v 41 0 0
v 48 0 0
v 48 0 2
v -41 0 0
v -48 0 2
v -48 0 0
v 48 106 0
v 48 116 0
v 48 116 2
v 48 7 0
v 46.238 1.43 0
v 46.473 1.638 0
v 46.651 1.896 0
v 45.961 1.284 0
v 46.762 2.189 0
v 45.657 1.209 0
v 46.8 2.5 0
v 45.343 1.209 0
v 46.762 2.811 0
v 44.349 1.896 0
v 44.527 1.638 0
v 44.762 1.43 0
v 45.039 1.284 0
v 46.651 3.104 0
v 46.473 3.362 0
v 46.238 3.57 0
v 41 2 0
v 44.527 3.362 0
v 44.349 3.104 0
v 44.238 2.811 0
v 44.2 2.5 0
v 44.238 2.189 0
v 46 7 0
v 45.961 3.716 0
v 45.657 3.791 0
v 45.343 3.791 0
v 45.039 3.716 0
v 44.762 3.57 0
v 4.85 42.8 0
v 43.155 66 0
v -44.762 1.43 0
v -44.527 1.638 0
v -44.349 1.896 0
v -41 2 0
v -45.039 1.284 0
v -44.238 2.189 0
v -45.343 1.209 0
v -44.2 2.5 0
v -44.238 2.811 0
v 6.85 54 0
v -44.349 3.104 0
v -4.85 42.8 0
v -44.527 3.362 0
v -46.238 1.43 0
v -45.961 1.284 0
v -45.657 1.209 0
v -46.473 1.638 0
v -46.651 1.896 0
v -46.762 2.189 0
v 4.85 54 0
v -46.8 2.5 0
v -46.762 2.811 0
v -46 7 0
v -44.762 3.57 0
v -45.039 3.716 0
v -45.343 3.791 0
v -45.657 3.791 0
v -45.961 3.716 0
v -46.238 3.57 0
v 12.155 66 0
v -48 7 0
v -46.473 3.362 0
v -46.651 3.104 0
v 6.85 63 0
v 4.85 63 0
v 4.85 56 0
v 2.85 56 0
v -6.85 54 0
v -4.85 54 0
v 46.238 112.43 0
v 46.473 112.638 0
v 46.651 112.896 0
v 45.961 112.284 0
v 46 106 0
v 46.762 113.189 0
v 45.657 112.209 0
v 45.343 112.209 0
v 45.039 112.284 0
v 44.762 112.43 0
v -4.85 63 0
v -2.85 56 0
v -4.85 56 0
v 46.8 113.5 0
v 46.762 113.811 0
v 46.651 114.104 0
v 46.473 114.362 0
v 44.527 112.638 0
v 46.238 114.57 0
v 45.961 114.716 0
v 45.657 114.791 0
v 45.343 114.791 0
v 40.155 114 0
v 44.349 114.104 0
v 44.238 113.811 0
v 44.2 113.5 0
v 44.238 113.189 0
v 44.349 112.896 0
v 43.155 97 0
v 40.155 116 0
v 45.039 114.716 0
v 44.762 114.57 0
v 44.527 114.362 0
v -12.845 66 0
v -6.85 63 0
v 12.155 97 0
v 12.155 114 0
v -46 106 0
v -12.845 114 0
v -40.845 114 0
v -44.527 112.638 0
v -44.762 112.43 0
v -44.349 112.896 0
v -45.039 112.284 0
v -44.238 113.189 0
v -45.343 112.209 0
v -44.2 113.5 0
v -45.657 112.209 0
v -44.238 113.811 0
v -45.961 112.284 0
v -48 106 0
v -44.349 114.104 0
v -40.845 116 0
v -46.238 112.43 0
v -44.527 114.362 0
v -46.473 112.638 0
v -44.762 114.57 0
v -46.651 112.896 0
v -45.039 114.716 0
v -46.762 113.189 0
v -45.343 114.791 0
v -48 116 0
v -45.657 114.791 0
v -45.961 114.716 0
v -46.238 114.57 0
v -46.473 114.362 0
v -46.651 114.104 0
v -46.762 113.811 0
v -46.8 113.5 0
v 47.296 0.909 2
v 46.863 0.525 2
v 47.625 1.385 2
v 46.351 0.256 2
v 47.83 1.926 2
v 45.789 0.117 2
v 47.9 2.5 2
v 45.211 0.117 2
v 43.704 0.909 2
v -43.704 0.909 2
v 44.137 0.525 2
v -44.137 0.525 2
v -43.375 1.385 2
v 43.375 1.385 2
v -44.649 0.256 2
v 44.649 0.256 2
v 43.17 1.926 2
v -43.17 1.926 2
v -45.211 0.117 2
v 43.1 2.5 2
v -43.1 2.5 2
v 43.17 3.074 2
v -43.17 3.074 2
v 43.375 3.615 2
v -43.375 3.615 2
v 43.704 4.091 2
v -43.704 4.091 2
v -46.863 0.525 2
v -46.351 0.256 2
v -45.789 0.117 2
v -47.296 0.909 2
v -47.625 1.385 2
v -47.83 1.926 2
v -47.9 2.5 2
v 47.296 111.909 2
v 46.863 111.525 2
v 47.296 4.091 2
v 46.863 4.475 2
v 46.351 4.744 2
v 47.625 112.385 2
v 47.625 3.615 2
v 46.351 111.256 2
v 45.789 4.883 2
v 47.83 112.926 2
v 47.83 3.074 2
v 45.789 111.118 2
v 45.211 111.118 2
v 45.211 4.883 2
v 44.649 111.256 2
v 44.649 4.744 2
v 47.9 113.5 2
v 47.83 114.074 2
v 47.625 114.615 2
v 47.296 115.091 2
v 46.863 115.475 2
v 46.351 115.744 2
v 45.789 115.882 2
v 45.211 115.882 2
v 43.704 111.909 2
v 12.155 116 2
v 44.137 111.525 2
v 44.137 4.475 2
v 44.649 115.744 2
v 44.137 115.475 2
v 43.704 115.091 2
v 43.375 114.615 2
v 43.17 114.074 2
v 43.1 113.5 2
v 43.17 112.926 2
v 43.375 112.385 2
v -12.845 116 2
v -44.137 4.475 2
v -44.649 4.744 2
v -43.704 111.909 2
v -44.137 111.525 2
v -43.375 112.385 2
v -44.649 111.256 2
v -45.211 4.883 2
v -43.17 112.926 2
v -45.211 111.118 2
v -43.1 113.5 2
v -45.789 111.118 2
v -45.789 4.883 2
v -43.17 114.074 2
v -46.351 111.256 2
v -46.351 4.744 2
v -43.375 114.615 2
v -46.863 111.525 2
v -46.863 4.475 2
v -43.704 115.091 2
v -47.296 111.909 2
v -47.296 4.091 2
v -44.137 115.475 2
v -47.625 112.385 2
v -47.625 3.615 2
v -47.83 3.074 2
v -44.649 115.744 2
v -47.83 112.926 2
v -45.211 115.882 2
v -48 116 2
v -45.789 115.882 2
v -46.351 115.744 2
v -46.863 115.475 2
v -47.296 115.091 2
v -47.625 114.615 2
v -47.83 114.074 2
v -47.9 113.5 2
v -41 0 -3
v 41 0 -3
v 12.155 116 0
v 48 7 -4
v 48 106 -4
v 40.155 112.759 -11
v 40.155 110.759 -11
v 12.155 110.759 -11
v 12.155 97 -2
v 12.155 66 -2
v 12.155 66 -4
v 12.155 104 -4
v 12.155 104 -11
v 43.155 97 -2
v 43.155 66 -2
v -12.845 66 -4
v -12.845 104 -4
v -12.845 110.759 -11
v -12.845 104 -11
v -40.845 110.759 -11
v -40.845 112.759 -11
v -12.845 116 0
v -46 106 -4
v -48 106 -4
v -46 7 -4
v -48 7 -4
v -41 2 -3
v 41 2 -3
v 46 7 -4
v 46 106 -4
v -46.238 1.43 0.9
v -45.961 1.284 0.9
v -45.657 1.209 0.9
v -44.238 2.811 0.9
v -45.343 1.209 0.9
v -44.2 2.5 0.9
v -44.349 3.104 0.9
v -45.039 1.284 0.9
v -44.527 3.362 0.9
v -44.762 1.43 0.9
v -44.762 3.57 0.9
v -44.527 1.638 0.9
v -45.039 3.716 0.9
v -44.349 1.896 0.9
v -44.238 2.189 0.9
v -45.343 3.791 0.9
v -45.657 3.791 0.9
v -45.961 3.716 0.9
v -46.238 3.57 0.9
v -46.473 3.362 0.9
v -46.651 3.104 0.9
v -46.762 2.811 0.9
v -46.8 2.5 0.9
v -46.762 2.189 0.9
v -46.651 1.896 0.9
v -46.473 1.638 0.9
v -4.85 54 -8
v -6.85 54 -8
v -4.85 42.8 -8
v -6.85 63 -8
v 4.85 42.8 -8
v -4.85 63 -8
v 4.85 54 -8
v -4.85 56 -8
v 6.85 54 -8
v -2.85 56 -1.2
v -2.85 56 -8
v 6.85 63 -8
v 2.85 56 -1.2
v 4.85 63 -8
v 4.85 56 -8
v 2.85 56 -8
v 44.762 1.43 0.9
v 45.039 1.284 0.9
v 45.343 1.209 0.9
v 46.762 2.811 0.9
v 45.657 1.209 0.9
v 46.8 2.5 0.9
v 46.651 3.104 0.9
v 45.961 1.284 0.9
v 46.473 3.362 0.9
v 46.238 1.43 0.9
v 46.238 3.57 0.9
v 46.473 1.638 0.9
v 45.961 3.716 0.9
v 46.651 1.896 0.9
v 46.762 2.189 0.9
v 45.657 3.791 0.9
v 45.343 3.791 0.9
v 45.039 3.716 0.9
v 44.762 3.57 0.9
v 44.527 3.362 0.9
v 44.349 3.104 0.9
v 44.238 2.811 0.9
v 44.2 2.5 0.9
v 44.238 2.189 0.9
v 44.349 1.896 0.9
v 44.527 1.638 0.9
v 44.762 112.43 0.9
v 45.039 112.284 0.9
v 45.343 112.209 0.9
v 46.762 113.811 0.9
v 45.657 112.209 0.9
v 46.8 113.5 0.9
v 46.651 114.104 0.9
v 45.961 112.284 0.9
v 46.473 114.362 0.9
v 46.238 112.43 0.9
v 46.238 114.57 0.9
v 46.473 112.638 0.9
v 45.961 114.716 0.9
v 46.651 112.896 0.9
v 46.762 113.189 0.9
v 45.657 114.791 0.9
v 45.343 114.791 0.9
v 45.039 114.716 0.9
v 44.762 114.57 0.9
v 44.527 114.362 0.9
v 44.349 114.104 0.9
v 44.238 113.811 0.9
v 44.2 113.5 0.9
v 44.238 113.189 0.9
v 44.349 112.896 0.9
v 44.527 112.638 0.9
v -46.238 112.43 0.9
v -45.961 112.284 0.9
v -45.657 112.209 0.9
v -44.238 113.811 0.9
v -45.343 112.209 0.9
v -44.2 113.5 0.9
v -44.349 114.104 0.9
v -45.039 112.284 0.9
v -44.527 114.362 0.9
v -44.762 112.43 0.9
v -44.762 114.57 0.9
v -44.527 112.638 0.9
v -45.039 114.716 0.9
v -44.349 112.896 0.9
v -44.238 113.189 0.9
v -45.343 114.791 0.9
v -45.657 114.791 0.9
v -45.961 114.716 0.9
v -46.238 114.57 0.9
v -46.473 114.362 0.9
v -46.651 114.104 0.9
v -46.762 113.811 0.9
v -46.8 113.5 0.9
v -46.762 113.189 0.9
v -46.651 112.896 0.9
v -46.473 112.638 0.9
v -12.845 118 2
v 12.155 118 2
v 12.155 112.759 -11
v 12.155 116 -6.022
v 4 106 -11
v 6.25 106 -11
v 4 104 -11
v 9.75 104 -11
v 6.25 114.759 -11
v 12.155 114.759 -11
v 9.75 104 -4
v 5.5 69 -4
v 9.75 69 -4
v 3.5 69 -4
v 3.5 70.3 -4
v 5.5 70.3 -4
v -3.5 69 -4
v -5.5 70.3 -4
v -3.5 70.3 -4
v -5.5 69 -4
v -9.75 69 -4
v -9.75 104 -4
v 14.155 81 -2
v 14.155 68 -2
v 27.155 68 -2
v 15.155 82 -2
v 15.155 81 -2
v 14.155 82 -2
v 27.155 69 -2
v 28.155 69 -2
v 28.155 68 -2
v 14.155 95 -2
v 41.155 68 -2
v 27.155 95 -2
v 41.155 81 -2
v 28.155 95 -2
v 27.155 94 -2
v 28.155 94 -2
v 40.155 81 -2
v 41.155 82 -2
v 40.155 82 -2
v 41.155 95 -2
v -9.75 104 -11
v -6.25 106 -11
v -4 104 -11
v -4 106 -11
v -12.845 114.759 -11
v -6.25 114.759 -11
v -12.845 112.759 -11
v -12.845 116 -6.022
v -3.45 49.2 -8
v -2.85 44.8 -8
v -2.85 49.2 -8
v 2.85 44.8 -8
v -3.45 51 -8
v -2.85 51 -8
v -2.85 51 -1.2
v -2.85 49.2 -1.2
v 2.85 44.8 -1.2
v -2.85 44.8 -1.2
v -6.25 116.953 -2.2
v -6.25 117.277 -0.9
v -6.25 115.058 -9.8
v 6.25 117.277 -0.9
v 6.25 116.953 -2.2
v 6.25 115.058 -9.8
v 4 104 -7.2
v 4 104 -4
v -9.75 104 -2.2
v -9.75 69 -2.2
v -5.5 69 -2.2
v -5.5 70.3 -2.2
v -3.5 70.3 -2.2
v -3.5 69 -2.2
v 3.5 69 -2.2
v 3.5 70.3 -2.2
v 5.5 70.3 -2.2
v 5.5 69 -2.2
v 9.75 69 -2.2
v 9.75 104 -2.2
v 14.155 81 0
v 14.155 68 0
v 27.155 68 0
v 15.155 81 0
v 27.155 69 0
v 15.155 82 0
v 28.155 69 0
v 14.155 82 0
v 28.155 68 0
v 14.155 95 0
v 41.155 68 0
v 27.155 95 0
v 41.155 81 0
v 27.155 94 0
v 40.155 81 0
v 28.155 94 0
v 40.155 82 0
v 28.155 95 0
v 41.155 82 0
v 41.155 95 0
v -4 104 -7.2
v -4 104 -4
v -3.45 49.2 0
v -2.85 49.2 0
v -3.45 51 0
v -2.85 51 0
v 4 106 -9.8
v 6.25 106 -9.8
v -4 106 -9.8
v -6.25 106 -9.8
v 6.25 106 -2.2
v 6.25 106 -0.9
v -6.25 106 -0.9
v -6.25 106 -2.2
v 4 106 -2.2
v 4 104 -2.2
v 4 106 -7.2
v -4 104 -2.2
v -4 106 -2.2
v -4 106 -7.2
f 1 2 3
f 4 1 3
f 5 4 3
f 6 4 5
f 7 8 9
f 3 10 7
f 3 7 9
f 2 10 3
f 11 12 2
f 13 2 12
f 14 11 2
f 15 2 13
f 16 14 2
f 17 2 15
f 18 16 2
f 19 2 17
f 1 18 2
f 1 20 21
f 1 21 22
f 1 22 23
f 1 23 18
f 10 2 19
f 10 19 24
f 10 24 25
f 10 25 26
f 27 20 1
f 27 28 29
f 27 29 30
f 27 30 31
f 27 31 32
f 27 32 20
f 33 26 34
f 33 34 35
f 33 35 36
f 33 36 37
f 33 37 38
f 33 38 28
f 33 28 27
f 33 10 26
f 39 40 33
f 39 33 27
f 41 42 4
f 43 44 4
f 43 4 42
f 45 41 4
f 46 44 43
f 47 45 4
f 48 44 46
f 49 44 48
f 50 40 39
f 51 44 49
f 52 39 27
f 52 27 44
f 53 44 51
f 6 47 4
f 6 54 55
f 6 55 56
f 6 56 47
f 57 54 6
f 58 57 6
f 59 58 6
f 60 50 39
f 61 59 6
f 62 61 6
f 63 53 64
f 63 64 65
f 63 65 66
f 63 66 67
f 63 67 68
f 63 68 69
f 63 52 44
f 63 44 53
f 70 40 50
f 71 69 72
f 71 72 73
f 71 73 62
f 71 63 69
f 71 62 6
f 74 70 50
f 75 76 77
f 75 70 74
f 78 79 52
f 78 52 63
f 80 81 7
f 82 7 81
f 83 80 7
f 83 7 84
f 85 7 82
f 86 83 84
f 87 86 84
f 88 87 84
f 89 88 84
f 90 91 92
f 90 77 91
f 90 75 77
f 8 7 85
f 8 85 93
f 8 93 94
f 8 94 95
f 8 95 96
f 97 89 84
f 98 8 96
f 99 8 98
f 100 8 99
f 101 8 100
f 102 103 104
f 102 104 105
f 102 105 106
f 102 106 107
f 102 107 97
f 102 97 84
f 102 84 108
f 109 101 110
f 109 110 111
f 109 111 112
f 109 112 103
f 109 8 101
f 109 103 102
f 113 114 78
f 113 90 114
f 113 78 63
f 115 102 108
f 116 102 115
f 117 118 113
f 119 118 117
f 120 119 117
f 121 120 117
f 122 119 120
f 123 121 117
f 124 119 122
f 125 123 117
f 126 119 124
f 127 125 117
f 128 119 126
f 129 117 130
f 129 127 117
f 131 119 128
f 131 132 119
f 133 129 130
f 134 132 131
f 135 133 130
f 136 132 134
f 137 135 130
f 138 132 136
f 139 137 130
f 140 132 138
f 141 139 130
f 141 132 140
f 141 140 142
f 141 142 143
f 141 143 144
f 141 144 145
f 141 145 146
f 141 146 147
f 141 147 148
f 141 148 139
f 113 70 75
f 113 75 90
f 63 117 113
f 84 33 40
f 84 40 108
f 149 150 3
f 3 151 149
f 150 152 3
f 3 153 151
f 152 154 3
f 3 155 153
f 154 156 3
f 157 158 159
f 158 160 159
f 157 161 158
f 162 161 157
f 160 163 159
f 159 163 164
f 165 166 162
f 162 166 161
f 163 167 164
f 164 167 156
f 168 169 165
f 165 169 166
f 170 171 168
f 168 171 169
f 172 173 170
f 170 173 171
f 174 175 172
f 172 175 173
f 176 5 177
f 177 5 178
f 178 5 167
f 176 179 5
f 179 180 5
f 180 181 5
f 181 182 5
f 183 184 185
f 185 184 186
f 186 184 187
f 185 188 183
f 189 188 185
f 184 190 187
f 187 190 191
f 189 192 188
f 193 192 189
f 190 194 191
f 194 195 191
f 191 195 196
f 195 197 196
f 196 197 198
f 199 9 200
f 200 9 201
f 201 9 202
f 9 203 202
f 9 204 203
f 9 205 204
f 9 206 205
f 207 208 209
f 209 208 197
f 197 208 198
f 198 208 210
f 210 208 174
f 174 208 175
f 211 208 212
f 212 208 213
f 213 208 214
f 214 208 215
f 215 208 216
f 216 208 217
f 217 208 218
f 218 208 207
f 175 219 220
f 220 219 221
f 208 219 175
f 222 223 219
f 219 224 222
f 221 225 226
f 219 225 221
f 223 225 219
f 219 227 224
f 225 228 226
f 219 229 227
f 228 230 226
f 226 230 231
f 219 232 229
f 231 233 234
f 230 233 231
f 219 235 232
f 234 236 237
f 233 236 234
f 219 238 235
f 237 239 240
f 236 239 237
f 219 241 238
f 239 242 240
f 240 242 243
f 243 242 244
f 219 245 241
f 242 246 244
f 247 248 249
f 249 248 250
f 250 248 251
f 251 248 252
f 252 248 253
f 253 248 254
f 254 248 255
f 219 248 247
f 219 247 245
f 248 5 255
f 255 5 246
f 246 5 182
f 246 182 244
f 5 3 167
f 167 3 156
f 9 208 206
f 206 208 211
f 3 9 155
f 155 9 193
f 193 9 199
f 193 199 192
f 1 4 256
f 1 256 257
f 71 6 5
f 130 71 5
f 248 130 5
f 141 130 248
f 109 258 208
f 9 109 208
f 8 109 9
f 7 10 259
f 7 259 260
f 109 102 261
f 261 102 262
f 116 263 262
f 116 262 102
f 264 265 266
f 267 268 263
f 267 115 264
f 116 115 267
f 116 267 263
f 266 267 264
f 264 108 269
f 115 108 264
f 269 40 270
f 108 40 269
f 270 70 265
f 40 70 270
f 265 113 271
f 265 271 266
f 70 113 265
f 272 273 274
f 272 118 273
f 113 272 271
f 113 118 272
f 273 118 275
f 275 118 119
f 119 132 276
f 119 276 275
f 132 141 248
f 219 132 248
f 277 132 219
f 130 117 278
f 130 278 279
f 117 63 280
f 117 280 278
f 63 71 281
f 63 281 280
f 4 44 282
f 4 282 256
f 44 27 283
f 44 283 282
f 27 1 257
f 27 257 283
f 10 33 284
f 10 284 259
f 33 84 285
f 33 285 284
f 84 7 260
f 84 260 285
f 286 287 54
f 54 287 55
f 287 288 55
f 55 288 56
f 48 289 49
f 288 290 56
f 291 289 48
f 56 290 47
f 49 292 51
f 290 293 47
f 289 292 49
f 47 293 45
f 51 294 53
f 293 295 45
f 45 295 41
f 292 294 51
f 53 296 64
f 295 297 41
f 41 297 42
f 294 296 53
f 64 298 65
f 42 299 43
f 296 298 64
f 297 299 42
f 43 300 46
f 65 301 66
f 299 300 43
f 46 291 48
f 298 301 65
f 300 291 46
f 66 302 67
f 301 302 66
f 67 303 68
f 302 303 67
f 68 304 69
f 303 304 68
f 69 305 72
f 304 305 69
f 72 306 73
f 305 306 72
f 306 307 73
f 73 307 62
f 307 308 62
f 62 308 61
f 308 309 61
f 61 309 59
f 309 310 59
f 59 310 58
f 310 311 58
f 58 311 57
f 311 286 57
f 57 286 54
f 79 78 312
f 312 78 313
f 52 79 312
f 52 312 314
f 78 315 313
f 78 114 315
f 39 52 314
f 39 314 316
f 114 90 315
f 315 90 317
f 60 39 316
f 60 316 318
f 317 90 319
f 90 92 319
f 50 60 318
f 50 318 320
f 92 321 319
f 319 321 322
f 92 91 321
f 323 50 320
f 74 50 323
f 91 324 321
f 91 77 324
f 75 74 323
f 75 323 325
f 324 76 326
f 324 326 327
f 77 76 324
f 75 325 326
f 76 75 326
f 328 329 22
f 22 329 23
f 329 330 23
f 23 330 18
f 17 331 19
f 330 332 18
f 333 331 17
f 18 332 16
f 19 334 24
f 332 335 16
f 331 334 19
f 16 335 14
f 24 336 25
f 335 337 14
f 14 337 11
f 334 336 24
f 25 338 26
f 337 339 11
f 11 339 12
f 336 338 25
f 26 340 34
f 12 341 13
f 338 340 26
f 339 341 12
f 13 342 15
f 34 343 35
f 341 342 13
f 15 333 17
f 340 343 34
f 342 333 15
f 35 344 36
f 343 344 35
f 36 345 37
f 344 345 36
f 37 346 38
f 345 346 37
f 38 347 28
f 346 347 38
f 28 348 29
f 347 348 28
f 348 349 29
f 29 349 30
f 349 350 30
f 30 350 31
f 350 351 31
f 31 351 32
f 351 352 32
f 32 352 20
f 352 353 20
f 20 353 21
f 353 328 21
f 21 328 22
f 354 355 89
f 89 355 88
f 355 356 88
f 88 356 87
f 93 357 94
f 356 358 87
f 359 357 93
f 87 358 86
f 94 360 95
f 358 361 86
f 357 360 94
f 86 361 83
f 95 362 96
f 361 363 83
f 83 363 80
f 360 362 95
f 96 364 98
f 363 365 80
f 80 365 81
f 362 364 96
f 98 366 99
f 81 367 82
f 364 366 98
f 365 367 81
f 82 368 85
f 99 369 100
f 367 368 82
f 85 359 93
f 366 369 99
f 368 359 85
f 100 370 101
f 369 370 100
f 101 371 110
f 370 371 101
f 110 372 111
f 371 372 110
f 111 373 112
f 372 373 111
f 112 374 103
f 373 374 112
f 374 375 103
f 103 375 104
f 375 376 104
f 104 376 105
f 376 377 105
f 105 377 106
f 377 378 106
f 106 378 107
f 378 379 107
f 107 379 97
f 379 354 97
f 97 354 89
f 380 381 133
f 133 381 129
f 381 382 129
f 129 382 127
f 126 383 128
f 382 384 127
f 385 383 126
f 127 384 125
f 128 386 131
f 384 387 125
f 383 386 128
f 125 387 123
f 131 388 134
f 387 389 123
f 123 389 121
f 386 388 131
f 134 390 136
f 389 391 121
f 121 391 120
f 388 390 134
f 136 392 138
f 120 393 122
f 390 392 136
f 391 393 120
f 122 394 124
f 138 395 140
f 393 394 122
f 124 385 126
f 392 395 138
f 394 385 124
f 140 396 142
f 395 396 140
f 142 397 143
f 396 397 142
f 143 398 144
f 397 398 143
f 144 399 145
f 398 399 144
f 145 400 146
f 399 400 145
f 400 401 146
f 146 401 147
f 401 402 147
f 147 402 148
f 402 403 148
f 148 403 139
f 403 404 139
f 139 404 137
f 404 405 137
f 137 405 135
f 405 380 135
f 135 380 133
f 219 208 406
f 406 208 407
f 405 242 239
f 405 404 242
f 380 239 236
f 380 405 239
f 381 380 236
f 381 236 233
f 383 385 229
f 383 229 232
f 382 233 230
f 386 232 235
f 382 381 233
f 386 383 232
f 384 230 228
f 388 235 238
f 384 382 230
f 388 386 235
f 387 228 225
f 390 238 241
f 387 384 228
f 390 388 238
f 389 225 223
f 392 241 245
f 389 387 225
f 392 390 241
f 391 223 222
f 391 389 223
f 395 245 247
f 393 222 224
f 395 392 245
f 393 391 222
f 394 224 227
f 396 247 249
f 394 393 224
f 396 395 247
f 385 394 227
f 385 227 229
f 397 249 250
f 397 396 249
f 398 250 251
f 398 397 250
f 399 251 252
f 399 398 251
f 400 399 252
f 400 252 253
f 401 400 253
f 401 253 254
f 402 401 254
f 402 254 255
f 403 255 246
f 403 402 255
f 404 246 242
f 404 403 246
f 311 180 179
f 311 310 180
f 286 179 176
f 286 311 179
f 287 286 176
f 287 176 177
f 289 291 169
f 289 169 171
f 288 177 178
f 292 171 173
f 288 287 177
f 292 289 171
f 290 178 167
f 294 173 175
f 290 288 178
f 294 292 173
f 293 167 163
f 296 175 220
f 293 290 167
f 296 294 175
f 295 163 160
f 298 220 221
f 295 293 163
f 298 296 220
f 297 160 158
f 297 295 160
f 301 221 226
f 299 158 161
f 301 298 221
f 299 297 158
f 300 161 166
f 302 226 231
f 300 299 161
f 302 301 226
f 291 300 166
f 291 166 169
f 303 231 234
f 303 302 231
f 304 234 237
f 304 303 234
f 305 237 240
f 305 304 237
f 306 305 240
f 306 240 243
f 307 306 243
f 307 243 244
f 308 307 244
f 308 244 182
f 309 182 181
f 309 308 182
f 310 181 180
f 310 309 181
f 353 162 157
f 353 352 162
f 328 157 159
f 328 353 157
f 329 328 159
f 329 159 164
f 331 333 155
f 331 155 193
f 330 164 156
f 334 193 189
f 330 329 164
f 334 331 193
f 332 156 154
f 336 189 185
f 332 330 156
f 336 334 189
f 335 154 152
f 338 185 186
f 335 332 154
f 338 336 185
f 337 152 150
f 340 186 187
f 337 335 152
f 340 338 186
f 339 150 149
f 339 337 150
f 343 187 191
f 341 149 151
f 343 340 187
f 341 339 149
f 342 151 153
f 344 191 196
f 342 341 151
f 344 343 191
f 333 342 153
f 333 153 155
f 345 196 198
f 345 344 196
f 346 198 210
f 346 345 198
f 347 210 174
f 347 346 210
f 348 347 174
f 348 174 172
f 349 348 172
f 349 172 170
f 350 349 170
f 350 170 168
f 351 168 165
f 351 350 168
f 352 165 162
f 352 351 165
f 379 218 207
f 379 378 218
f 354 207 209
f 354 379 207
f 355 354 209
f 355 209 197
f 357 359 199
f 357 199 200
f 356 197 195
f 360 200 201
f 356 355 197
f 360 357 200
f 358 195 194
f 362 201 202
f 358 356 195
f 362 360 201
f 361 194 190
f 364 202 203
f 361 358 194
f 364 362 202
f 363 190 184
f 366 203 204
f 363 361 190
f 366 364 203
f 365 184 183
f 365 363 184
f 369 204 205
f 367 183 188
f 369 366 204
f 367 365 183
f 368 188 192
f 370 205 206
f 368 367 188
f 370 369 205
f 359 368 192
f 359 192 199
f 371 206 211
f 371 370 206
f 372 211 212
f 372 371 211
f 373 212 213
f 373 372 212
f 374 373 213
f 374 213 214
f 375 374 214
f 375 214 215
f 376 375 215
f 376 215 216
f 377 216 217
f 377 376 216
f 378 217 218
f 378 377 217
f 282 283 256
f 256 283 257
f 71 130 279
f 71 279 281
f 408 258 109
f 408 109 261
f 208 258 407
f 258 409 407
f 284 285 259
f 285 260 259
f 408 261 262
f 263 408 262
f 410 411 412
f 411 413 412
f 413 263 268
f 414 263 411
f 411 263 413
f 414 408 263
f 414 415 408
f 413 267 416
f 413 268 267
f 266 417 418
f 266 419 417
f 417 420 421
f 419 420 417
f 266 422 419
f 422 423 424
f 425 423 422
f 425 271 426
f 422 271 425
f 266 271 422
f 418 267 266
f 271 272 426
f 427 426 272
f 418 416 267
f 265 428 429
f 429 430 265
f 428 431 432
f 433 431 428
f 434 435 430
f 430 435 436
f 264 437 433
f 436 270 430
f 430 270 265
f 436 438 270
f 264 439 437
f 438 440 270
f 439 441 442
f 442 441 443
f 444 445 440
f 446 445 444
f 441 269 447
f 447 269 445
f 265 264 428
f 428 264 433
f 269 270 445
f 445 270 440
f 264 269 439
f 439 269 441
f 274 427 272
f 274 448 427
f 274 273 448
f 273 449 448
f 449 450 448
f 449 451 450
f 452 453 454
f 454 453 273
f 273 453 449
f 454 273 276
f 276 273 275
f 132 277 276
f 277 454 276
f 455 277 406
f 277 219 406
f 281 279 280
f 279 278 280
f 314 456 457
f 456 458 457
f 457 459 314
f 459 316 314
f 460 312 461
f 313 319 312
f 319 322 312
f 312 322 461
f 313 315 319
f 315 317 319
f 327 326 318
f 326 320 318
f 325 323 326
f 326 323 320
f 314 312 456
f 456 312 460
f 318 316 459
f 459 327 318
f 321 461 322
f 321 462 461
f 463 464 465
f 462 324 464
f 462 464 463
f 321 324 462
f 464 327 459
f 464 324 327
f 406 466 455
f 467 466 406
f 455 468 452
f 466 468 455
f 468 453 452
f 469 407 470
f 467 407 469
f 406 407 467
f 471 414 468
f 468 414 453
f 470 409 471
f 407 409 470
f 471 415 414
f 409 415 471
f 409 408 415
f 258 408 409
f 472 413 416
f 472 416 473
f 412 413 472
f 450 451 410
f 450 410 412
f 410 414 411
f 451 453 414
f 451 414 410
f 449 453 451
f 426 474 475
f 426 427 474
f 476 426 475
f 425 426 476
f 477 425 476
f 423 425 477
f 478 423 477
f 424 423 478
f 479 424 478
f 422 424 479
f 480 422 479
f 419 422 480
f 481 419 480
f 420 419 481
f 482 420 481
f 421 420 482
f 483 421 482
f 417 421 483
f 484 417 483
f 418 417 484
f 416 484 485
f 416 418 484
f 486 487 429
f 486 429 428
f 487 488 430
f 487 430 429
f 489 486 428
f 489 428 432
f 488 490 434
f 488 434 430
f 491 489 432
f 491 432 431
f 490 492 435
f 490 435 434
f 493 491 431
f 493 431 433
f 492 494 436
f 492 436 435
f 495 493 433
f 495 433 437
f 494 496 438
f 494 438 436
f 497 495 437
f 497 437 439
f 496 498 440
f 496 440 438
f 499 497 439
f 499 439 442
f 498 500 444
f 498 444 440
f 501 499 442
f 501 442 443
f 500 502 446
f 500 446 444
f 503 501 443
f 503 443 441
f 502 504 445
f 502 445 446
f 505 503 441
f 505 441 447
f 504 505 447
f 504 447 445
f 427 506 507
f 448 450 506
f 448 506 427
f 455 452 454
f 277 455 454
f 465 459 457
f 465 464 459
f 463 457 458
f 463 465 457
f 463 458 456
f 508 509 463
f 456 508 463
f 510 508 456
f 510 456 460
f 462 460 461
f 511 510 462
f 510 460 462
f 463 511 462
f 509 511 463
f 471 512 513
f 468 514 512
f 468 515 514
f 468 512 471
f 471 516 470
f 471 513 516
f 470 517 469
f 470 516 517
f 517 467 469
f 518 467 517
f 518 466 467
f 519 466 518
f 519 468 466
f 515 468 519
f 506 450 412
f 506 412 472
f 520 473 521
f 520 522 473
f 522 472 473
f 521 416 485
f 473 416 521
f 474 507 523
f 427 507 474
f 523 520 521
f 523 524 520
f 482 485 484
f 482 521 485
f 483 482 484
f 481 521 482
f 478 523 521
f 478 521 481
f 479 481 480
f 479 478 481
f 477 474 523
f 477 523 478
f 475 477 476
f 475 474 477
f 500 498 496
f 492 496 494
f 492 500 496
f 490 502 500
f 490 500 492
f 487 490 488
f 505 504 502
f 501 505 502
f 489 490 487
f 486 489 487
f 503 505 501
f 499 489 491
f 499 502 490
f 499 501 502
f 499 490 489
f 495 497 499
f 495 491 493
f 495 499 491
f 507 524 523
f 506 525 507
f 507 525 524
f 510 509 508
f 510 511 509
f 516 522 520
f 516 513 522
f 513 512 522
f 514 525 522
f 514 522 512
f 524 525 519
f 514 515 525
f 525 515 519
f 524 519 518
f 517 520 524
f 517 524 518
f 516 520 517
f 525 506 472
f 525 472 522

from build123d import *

# Parameters (mm, degrees)
SKETCH_W        = 96
SKETCH_H        = 116
PAD_DEPTH       = 2
SKETCH001_R     = 1.3
POCKET_DEPTH    = 2.001
CHAMFER_SIZE    = 1.1
SKETCH003_W     = 25
SKETCH003_H     = 50
PAD001_DEPTH    = 11
SKETCH004_W     = 25
SKETCH004_H     = 13
PAD002_DEPTH    = 2
POCKET001_DEPTH = 8.8
SKETCH008_W     = 12.5
SKETCH008_H     = 12
POCKET004_DEPTH = 1.3
SKETCH009_W     = 37.451334
SKETCH009_H     = 40.177643
POCKET005_DEPTH = 7
SKETCH010_W     = 12
SKETCH010_H     = 1.2
PAD003_DEPTH    = 12.5
SKETCH011_W     = 2
SKETCH011_H     = 3.8
PAD004_DEPTH    = 8
POCKET006_DEPTH = 60.155704
PAD005_DEPTH    = 8
SKETCH015_W     = 5.7
SKETCH015_H     = 11.2
PAD006_DEPTH    = 1.2
SKETCH016_W     = 31
SKETCH016_H     = 31
PAD007_DEPTH    = 2
SKETCH017_W     = 82
SKETCH017_H     = 2
PAD008_DEPTH    = 3
PAD009_DEPTH    = 28
PAD010_DEPTH    = 28
SKETCH020_W     = 2
SKETCH020_H     = 99
PAD011_DEPTH    = 4


with BuildPart() as part:
    # Sketch → Pad (new body)
    with BuildSketch(Plane.XY):
        with Locations((0, 58)):
            Rectangle(SKETCH_W, SKETCH_H)
    extrude(amount=PAD_DEPTH)

    # Sketch001 (on Face6 of Pad) → Pocket (cut, through all)
    with BuildSketch(Plane.XY.offset(2)):
        with Locations((-45.5, 113.5)):
            Circle(SKETCH001_R)
        with Locations((45.5, 113.5)):
            Circle(SKETCH001_R)
        with Locations((45.5, 2.5)):
            Circle(SKETCH001_R)
        with Locations((-45.5, 2.5)):
            Circle(SKETCH001_R)
    extrude(amount=-POCKET_DEPTH, mode=Mode.SUBTRACT)

    # Chamfer
    chamfer_edges = [part.edges().sort_by_distance(p)[0] for p in [
        (-46.8, 113.5, 2),
        (44.2, 113.5, 2),
        (44.2, 2.5, 2),
        (-46.8, 2.5, 2),
    ]]
    chamfer(chamfer_edges, length=CHAMFER_SIZE)

    # Sketch003 → Pad001 (join)
    with BuildSketch(Plane(origin=(0, 0, 0), x_dir=(1, 0, 0), z_dir=(0, 0, -1))):
        with Locations((-0.345296, -91)):
            Rectangle(SKETCH003_W, SKETCH003_H)
    extrude(amount=PAD001_DEPTH)

    # Sketch004 (on Face12 of Pad001) → Pad002 (join)
    with BuildSketch(Plane(origin=(0, 116, 0), x_dir=(-1, 0, 0), z_dir=(0, 1, 0))):
        with Locations((0.345296, -4.5)):
            Rectangle(SKETCH004_W, SKETCH004_H)
    extrude(amount=PAD002_DEPTH)

    # Sketch005 (on Face24 of Pad002) → Pocket001 (cut)
    with BuildSketch(Plane(origin=(0, 0, -11), x_dir=(1, 0, 0), z_dir=(0, 0, -1))):
        Polygon((-9.75, -69), (-9.75, -104), (-4, -104), (-4, -106), (-6.25, -106), (-6.25, -118), (6.25, -118), (6.25, -106), (4, -106), (4, -104), (9.75, -104), (9.75, -69), (5.5, -69), (5.5, -70.3), (3.5, -70.3), (3.5, -69), (-3.5, -69), (-3.5, -70.3), (-5.5, -70.3), (-5.5, -69), align=None)
    extrude(amount=-POCKET001_DEPTH, mode=Mode.SUBTRACT)

    # Sketch008 (on Face26 of Pocket001) → Pocket004 (cut)
    with BuildSketch(Plane(origin=(0, 0, -2.2), x_dir=(1, 0, 0), z_dir=(0, 0, -1))):
        with Locations((0, -112)):
            Rectangle(SKETCH008_W, SKETCH008_H)
    extrude(amount=-POCKET004_DEPTH, mode=Mode.SUBTRACT)

    # Sketch009 (on Face24 of Pocket004) → Pocket005 (cut)
    with BuildSketch(Plane(origin=(0, 0, -11), x_dir=(1, 0, 0), z_dir=(0, 0, -1))):
        with Locations((-0.643557, -83.911179)):
            Rectangle(SKETCH009_W, SKETCH009_H)
    extrude(amount=-POCKET005_DEPTH, mode=Mode.SUBTRACT)

    # Sketch010 (on Face29 of Pocket005) → Pad003 (join)
    with BuildSketch(Plane.YZ.offset(-6.25)):
        with Locations((112, -10.4)):
            Rectangle(SKETCH010_W, SKETCH010_H)
    extrude(amount=PAD003_DEPTH)

    # Sketch011 (on Face51 of Pad003) → Pad004 (join)
    with BuildSketch(Plane.YZ.offset(-4)):
        with Locations((105, -9.1)):
            Rectangle(SKETCH011_W, SKETCH011_H)
    extrude(amount=PAD004_DEPTH)

    # Sketch012 (on Face23 of Pad004) → Pocket006 (cut, through all)
    with BuildSketch(Plane.YZ.offset(12.154704)):
        Polygon((118, 2), (113.889458, -14.486482), (118, -14.486482), align=None)
    extrude(amount=-POCKET006_DEPTH, mode=Mode.SUBTRACT)

    # Sketch014 (on Face4 of Pocket006) → Pad005 (join)
    with BuildSketch(Plane(origin=(0, 0, 0), x_dir=(1, 0, 0), z_dir=(0, 0, -1))):
        Polygon((-4.85, -42.8), (4.85, -42.8), (4.85, -54), (6.85, -54), (6.85, -63), (4.85, -63), (4.85, -56), (2.85, -56), (2.85, -44.8), (-2.85, -44.8), (-2.85, -49.2), (-3.45, -49.2), (-3.45, -51), (-2.85, -51), (-2.85, -56), (-4.85, -56), (-4.85, -63), (-6.85, -63), (-6.85, -54), (-4.85, -54), align=None)
    extrude(amount=PAD005_DEPTH)

    # Sketch015 (on Face4 of Pad005) → Pad006 (join)
    with BuildSketch(Plane(origin=(0, 0, 0), x_dir=(1, 0, 0), z_dir=(0, 0, -1))):
        with Locations((0, -50.4)):
            Rectangle(SKETCH015_W, SKETCH015_H)
    extrude(amount=PAD006_DEPTH)

    # Sketch016 (on Face4 of Pad006) → Pad007 (join)
    with BuildSketch(Plane(origin=(0, 0, 0), x_dir=(1, 0, 0), z_dir=(0, 0, -1))):
        with Locations((27.654704, -81.5)):
            Rectangle(SKETCH016_W, SKETCH016_H)
        Polygon((14.154704, -68), (14.154704, -81), (15.154704, -81), (15.154704, -82), (14.154704, -82), (14.154704, -95), (27.154704, -95), (27.154704, -94), (28.154704, -94), (28.154704, -95), (41.154704, -95), (41.154704, -82), (40.154704, -82), (40.154704, -81), (41.154704, -81), (41.154704, -68), (28.154704, -68), (28.154704, -69), (27.154704, -69), (27.154704, -68), align=None, mode=Mode.SUBTRACT)
    extrude(amount=PAD007_DEPTH)

    # Sketch017 (on Face4 of Pad007) → Pad008 (join)
    with BuildSketch(Plane(origin=(0, 0, 0), x_dir=(1, 0, 0), z_dir=(0, 0, -1))):
        with Locations((0, -1)):
            Rectangle(SKETCH017_W, SKETCH017_H)
    extrude(amount=PAD008_DEPTH)

    # Sketch018 (on Face10 of Pad008) → Pad009 (join)
    with BuildSketch(Plane.YZ.offset(12.154704)):
        Polygon((116, 0), (112.758736, -11), (110.758736, -11), (114, 0), align=None)
    extrude(amount=PAD009_DEPTH)

    # Sketch019 (on Face17 of Pad009) → Pad010 (join)
    with BuildSketch(Plane(origin=(-12.845296, 0, 0), x_dir=(0, -1, 0), z_dir=(-1, 0, 0))):
        Polygon((-116, 0), (-112.758736, -11), (-110.758736, -11), (-114, 0), align=None)
    extrude(amount=PAD010_DEPTH)

    # Sketch020 (on Face4 of Pad010) → Pad011 (join)
    with BuildSketch(Plane(origin=(0, 0, 0), x_dir=(1, 0, 0), z_dir=(0, 0, -1))):
        with Locations((-47, -56.5)):
            Rectangle(SKETCH020_W, SKETCH020_H)
        with Locations((47, -56.5)):
            Rectangle(SKETCH020_W, SKETCH020_H)
    extrude(amount=PAD011_DEPTH)


solid = part.part
